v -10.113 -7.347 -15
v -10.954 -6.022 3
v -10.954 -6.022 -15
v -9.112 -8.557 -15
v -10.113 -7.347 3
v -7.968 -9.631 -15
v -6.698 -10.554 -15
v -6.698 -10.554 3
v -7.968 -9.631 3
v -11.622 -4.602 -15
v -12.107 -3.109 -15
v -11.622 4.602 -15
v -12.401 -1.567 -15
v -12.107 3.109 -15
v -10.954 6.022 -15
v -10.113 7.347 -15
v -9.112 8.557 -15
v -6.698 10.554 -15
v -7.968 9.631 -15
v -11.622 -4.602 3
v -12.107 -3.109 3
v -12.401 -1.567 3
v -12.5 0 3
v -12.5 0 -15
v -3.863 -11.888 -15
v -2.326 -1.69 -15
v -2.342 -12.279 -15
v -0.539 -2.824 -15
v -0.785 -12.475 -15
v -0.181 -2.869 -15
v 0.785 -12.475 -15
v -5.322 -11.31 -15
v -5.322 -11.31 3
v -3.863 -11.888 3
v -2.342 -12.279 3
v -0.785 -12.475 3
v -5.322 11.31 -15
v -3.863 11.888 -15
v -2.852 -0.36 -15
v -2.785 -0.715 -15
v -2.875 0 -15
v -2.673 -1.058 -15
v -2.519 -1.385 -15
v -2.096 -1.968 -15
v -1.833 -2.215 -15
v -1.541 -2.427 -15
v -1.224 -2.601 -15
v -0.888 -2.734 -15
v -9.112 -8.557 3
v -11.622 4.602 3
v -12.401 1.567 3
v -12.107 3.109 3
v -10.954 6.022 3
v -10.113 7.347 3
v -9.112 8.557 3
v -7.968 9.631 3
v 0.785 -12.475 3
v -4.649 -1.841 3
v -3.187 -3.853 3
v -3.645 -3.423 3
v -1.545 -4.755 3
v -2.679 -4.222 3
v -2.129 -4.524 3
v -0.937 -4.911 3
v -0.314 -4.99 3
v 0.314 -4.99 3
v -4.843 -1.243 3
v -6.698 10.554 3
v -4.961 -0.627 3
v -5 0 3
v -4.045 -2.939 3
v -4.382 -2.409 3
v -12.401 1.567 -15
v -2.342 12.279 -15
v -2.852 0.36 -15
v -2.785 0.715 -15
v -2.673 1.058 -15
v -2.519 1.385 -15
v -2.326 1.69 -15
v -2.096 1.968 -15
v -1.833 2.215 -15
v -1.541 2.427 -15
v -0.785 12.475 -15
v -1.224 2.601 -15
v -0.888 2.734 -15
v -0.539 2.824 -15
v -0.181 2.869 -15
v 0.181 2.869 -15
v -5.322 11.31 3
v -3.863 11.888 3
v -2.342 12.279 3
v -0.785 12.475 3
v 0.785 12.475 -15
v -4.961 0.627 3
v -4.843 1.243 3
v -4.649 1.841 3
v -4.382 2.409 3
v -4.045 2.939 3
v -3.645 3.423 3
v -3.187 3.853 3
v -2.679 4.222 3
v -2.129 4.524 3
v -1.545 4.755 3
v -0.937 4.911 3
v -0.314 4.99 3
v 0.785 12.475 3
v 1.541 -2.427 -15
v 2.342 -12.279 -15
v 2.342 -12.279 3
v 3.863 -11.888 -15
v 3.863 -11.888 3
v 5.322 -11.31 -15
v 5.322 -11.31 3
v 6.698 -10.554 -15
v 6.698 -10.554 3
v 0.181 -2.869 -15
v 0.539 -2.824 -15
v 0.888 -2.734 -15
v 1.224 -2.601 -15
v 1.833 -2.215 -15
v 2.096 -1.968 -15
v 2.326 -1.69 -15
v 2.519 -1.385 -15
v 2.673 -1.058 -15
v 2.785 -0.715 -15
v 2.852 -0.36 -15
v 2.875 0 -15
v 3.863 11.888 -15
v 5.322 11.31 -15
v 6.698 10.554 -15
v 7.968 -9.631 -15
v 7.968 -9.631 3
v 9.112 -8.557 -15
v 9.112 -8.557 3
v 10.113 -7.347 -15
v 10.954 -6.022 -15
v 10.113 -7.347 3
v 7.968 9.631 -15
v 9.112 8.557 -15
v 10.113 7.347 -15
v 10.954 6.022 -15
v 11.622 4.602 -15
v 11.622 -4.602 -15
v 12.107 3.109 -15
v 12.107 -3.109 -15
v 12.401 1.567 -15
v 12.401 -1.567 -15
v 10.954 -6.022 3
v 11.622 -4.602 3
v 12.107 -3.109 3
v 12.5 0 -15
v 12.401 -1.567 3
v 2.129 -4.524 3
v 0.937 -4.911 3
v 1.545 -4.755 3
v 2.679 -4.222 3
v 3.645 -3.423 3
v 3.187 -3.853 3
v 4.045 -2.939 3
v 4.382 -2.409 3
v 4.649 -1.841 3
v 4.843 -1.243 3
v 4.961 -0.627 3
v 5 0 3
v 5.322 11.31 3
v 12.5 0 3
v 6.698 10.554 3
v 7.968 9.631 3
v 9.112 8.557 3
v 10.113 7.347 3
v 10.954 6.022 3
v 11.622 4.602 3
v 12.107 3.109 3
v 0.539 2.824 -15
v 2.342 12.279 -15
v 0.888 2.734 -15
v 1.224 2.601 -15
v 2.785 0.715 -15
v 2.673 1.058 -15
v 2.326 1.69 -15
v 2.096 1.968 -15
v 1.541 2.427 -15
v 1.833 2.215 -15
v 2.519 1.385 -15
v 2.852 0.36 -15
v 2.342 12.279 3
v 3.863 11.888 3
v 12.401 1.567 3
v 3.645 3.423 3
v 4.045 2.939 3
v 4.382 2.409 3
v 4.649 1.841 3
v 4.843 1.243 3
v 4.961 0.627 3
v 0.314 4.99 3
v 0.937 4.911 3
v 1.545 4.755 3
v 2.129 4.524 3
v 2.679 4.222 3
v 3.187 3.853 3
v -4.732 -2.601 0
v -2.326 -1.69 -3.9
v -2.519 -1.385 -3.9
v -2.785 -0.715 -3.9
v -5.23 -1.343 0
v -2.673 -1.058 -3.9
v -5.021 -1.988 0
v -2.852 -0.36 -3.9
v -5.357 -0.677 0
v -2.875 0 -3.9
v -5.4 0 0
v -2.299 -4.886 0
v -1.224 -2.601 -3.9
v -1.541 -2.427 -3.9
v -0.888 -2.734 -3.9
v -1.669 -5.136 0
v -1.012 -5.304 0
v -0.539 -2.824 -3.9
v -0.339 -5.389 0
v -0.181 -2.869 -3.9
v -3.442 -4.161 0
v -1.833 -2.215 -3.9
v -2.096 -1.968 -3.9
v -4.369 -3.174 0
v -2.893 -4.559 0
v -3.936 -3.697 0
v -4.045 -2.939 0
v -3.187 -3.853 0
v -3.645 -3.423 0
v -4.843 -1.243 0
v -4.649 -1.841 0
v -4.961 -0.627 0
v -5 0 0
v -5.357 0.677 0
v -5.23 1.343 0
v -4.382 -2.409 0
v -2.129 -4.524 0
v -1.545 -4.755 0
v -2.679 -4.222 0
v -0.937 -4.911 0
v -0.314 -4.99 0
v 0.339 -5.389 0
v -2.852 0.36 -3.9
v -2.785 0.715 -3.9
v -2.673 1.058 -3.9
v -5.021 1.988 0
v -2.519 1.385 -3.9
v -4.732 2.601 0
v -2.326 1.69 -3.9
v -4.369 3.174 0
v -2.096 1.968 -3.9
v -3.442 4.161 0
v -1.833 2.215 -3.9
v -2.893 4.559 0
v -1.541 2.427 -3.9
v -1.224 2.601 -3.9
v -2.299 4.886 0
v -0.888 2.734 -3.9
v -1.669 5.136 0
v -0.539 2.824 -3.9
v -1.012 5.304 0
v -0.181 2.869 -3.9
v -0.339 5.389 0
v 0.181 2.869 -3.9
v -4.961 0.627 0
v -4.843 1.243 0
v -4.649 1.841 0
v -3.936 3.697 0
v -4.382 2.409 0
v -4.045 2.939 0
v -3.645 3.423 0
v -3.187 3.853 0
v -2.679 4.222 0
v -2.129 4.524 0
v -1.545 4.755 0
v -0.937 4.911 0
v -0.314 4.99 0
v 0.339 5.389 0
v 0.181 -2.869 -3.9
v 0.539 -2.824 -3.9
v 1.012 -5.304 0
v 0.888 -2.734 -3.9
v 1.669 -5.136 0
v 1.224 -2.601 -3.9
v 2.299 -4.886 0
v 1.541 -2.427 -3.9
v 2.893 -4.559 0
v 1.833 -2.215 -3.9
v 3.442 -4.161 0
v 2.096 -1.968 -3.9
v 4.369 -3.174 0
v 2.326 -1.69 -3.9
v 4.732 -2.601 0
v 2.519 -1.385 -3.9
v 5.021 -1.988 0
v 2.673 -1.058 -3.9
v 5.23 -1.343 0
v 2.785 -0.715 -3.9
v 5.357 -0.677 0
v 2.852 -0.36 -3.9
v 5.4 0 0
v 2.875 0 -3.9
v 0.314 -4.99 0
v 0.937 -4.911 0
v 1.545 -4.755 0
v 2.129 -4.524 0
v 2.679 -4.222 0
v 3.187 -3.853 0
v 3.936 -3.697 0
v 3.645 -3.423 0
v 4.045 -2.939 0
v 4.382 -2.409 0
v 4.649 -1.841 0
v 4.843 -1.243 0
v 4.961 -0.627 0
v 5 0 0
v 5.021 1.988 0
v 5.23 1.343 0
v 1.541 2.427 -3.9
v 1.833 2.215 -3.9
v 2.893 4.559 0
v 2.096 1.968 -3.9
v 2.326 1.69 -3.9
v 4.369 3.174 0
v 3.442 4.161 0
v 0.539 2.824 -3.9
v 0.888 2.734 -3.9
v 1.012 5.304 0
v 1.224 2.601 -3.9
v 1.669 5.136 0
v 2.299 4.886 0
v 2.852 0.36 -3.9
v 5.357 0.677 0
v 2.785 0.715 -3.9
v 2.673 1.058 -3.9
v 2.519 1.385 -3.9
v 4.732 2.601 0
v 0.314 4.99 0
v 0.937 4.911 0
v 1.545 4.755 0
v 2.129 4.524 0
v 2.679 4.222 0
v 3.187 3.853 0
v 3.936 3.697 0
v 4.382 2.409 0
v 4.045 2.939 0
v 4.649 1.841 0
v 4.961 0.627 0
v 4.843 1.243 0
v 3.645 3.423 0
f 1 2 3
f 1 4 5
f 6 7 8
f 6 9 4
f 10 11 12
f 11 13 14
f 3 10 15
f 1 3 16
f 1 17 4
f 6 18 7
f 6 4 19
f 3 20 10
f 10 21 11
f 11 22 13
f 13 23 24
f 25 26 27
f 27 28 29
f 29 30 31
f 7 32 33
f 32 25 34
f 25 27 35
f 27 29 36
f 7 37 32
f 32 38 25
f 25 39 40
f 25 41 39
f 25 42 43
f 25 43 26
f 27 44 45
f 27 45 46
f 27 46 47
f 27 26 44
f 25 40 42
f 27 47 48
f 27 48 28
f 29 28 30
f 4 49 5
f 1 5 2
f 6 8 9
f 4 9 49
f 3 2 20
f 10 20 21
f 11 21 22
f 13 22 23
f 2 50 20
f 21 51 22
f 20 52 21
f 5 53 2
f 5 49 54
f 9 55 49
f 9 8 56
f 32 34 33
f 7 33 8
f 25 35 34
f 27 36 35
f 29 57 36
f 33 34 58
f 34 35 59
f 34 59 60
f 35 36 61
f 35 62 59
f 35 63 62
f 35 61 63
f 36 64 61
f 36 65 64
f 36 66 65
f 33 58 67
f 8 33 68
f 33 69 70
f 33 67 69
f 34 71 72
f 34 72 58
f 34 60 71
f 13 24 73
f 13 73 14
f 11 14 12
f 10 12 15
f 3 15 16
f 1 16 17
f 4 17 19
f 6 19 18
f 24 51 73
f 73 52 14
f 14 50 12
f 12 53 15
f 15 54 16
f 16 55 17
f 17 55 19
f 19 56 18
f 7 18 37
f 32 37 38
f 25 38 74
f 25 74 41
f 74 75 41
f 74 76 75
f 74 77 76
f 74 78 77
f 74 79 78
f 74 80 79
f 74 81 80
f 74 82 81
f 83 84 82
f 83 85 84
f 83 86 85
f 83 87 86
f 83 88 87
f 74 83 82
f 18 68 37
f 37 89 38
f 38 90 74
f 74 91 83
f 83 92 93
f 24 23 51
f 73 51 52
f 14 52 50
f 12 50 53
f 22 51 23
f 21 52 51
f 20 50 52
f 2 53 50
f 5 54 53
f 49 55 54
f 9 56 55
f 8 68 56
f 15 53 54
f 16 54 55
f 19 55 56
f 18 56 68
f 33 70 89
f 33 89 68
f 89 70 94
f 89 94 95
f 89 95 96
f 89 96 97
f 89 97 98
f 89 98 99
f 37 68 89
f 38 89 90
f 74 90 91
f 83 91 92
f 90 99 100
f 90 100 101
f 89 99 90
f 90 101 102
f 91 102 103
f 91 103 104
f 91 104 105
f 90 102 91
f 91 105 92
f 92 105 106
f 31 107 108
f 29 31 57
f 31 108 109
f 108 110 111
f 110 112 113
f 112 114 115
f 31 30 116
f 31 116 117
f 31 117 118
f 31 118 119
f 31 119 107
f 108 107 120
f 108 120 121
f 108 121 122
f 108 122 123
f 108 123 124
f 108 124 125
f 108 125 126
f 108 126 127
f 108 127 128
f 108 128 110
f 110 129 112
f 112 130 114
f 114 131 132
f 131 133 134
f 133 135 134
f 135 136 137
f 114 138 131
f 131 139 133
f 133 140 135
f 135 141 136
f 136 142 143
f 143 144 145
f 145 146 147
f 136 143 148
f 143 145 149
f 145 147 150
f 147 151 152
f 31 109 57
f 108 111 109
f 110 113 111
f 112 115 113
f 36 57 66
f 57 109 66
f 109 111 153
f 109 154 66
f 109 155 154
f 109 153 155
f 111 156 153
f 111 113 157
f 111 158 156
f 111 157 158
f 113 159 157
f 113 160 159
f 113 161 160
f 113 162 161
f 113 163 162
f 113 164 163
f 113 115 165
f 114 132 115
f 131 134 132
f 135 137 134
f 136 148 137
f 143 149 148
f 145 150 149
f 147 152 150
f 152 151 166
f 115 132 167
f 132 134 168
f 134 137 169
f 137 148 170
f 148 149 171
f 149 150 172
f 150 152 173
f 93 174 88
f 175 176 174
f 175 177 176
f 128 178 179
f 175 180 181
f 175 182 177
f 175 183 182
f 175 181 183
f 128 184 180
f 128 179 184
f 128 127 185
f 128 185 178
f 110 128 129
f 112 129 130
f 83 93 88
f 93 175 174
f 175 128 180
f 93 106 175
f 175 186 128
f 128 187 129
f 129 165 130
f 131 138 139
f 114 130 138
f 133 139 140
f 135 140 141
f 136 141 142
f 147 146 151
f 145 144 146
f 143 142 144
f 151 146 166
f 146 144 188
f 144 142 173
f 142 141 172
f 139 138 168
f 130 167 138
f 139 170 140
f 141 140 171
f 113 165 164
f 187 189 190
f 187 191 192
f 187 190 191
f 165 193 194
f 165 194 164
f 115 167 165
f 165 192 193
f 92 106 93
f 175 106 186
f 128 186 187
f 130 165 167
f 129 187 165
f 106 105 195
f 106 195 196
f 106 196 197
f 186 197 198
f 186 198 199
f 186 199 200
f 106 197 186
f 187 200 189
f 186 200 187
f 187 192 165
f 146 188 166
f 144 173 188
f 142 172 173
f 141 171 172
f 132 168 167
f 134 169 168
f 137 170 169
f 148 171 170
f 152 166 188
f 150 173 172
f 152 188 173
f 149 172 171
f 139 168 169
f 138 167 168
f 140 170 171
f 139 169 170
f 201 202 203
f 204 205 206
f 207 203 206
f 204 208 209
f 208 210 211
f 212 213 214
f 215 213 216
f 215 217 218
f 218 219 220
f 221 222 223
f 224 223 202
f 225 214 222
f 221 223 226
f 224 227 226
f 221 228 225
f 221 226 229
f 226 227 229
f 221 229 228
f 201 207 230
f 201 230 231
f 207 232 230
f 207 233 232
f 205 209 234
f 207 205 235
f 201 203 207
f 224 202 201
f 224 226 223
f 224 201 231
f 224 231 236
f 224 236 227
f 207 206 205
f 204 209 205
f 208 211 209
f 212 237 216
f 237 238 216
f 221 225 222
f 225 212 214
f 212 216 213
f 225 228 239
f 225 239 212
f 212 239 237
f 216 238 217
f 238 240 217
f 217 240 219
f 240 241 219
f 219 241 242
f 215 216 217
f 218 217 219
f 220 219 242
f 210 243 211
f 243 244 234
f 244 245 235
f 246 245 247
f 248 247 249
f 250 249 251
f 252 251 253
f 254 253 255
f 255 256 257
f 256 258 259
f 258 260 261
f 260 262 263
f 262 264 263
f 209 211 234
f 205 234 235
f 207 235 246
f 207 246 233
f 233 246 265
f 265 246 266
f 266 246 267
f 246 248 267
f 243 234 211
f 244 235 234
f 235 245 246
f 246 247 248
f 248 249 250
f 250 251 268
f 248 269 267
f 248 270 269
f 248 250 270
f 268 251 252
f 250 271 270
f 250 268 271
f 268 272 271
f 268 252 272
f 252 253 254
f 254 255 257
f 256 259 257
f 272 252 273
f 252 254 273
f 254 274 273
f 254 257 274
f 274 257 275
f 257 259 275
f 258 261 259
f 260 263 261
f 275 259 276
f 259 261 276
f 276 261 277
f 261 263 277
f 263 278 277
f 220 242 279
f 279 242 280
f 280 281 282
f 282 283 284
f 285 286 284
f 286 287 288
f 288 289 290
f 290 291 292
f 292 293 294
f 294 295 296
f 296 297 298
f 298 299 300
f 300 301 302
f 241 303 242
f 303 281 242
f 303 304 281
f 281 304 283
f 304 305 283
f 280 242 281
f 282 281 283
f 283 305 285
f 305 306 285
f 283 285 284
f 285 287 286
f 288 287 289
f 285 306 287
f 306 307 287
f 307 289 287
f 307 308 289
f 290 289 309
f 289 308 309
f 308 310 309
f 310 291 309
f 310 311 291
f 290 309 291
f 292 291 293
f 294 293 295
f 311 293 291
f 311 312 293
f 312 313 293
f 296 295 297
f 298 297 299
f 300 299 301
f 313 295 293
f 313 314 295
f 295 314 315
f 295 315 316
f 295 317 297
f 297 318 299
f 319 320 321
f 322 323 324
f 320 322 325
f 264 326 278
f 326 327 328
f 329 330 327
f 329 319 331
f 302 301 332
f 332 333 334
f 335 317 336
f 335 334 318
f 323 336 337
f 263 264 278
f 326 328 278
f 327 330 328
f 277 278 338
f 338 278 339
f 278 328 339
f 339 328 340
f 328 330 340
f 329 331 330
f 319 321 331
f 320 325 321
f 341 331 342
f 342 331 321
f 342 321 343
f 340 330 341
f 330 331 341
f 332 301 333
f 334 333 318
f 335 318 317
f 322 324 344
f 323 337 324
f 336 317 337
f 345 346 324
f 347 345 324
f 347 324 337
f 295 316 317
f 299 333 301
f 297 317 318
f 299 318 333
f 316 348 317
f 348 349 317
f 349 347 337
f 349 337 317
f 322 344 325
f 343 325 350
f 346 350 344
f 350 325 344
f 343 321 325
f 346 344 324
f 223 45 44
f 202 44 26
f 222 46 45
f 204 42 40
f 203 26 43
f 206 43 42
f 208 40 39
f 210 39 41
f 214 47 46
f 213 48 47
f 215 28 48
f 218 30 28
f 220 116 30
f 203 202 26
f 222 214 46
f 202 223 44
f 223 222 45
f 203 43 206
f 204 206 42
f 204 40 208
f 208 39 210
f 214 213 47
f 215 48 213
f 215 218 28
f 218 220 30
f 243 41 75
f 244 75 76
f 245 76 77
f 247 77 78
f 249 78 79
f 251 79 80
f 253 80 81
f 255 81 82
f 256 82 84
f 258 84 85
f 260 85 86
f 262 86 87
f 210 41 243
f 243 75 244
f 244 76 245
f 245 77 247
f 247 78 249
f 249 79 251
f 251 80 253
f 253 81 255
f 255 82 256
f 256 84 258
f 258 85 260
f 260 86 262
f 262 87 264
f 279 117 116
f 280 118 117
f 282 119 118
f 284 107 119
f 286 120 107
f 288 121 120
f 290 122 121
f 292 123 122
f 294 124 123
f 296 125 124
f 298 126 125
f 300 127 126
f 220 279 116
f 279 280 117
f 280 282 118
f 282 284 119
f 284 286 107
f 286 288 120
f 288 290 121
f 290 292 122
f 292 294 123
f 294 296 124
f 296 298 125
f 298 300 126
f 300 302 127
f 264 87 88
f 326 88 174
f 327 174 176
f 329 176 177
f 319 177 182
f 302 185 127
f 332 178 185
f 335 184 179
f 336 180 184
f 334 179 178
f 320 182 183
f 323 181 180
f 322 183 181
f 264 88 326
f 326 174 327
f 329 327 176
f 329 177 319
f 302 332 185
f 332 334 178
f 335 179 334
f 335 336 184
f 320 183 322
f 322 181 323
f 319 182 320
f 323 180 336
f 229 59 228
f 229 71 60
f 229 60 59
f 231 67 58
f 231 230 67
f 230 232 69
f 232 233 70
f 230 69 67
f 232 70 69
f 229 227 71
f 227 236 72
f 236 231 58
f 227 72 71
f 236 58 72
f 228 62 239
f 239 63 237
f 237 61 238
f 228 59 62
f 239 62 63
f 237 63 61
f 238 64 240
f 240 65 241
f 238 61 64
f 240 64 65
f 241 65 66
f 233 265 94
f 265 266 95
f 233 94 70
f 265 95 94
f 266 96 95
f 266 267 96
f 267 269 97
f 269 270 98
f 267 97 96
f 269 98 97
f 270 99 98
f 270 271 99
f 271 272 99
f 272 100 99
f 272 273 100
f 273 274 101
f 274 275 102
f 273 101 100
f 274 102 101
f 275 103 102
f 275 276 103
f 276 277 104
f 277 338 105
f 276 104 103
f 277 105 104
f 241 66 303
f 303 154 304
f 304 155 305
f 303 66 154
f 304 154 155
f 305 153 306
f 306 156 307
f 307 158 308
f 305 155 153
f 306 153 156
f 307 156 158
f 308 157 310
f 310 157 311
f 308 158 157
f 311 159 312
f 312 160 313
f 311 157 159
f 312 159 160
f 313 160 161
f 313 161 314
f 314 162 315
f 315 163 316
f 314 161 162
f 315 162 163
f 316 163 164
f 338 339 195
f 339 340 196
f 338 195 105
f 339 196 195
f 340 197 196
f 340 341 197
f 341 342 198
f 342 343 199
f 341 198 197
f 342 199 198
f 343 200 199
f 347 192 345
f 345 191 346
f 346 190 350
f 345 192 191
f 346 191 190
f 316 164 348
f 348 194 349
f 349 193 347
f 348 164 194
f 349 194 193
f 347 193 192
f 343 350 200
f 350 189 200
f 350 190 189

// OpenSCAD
$fn = 50;

difference() {
	union() {
		translate(v = [0, 0, -15.0]) {
			cylinder(h = 18, r = 12.5);
		}
		#translate(v = [0, 0, -18.0]) {
			cylinder(h = 18, r = 2.875);
		}
	}
	union() {
		translate(v = [0, 0, 0]) {
			rotate(a = [0, 0, 0]) {
				difference() {
					union() {
						translate(v = [0, 0, -18.0]) {
							cylinder(h = 18, r = 2.6);
						}
						translate(v = [0, 0, -3.9]) {
							cylinder(h = 3.9, r1 = 2.875, r2 = 5.4);
						}
						translate(v = [0, 0, -18.0]) {
							cylinder(h = 18, r = 2.875);
						}
						translate(v = [0, 0, -18.0]) {
							cylinder(h = 18, r = 2.6);
						}
					}
					union();
				}
			}
		}
		#cylinder(h = 3, r = 5.0);
	}
}
